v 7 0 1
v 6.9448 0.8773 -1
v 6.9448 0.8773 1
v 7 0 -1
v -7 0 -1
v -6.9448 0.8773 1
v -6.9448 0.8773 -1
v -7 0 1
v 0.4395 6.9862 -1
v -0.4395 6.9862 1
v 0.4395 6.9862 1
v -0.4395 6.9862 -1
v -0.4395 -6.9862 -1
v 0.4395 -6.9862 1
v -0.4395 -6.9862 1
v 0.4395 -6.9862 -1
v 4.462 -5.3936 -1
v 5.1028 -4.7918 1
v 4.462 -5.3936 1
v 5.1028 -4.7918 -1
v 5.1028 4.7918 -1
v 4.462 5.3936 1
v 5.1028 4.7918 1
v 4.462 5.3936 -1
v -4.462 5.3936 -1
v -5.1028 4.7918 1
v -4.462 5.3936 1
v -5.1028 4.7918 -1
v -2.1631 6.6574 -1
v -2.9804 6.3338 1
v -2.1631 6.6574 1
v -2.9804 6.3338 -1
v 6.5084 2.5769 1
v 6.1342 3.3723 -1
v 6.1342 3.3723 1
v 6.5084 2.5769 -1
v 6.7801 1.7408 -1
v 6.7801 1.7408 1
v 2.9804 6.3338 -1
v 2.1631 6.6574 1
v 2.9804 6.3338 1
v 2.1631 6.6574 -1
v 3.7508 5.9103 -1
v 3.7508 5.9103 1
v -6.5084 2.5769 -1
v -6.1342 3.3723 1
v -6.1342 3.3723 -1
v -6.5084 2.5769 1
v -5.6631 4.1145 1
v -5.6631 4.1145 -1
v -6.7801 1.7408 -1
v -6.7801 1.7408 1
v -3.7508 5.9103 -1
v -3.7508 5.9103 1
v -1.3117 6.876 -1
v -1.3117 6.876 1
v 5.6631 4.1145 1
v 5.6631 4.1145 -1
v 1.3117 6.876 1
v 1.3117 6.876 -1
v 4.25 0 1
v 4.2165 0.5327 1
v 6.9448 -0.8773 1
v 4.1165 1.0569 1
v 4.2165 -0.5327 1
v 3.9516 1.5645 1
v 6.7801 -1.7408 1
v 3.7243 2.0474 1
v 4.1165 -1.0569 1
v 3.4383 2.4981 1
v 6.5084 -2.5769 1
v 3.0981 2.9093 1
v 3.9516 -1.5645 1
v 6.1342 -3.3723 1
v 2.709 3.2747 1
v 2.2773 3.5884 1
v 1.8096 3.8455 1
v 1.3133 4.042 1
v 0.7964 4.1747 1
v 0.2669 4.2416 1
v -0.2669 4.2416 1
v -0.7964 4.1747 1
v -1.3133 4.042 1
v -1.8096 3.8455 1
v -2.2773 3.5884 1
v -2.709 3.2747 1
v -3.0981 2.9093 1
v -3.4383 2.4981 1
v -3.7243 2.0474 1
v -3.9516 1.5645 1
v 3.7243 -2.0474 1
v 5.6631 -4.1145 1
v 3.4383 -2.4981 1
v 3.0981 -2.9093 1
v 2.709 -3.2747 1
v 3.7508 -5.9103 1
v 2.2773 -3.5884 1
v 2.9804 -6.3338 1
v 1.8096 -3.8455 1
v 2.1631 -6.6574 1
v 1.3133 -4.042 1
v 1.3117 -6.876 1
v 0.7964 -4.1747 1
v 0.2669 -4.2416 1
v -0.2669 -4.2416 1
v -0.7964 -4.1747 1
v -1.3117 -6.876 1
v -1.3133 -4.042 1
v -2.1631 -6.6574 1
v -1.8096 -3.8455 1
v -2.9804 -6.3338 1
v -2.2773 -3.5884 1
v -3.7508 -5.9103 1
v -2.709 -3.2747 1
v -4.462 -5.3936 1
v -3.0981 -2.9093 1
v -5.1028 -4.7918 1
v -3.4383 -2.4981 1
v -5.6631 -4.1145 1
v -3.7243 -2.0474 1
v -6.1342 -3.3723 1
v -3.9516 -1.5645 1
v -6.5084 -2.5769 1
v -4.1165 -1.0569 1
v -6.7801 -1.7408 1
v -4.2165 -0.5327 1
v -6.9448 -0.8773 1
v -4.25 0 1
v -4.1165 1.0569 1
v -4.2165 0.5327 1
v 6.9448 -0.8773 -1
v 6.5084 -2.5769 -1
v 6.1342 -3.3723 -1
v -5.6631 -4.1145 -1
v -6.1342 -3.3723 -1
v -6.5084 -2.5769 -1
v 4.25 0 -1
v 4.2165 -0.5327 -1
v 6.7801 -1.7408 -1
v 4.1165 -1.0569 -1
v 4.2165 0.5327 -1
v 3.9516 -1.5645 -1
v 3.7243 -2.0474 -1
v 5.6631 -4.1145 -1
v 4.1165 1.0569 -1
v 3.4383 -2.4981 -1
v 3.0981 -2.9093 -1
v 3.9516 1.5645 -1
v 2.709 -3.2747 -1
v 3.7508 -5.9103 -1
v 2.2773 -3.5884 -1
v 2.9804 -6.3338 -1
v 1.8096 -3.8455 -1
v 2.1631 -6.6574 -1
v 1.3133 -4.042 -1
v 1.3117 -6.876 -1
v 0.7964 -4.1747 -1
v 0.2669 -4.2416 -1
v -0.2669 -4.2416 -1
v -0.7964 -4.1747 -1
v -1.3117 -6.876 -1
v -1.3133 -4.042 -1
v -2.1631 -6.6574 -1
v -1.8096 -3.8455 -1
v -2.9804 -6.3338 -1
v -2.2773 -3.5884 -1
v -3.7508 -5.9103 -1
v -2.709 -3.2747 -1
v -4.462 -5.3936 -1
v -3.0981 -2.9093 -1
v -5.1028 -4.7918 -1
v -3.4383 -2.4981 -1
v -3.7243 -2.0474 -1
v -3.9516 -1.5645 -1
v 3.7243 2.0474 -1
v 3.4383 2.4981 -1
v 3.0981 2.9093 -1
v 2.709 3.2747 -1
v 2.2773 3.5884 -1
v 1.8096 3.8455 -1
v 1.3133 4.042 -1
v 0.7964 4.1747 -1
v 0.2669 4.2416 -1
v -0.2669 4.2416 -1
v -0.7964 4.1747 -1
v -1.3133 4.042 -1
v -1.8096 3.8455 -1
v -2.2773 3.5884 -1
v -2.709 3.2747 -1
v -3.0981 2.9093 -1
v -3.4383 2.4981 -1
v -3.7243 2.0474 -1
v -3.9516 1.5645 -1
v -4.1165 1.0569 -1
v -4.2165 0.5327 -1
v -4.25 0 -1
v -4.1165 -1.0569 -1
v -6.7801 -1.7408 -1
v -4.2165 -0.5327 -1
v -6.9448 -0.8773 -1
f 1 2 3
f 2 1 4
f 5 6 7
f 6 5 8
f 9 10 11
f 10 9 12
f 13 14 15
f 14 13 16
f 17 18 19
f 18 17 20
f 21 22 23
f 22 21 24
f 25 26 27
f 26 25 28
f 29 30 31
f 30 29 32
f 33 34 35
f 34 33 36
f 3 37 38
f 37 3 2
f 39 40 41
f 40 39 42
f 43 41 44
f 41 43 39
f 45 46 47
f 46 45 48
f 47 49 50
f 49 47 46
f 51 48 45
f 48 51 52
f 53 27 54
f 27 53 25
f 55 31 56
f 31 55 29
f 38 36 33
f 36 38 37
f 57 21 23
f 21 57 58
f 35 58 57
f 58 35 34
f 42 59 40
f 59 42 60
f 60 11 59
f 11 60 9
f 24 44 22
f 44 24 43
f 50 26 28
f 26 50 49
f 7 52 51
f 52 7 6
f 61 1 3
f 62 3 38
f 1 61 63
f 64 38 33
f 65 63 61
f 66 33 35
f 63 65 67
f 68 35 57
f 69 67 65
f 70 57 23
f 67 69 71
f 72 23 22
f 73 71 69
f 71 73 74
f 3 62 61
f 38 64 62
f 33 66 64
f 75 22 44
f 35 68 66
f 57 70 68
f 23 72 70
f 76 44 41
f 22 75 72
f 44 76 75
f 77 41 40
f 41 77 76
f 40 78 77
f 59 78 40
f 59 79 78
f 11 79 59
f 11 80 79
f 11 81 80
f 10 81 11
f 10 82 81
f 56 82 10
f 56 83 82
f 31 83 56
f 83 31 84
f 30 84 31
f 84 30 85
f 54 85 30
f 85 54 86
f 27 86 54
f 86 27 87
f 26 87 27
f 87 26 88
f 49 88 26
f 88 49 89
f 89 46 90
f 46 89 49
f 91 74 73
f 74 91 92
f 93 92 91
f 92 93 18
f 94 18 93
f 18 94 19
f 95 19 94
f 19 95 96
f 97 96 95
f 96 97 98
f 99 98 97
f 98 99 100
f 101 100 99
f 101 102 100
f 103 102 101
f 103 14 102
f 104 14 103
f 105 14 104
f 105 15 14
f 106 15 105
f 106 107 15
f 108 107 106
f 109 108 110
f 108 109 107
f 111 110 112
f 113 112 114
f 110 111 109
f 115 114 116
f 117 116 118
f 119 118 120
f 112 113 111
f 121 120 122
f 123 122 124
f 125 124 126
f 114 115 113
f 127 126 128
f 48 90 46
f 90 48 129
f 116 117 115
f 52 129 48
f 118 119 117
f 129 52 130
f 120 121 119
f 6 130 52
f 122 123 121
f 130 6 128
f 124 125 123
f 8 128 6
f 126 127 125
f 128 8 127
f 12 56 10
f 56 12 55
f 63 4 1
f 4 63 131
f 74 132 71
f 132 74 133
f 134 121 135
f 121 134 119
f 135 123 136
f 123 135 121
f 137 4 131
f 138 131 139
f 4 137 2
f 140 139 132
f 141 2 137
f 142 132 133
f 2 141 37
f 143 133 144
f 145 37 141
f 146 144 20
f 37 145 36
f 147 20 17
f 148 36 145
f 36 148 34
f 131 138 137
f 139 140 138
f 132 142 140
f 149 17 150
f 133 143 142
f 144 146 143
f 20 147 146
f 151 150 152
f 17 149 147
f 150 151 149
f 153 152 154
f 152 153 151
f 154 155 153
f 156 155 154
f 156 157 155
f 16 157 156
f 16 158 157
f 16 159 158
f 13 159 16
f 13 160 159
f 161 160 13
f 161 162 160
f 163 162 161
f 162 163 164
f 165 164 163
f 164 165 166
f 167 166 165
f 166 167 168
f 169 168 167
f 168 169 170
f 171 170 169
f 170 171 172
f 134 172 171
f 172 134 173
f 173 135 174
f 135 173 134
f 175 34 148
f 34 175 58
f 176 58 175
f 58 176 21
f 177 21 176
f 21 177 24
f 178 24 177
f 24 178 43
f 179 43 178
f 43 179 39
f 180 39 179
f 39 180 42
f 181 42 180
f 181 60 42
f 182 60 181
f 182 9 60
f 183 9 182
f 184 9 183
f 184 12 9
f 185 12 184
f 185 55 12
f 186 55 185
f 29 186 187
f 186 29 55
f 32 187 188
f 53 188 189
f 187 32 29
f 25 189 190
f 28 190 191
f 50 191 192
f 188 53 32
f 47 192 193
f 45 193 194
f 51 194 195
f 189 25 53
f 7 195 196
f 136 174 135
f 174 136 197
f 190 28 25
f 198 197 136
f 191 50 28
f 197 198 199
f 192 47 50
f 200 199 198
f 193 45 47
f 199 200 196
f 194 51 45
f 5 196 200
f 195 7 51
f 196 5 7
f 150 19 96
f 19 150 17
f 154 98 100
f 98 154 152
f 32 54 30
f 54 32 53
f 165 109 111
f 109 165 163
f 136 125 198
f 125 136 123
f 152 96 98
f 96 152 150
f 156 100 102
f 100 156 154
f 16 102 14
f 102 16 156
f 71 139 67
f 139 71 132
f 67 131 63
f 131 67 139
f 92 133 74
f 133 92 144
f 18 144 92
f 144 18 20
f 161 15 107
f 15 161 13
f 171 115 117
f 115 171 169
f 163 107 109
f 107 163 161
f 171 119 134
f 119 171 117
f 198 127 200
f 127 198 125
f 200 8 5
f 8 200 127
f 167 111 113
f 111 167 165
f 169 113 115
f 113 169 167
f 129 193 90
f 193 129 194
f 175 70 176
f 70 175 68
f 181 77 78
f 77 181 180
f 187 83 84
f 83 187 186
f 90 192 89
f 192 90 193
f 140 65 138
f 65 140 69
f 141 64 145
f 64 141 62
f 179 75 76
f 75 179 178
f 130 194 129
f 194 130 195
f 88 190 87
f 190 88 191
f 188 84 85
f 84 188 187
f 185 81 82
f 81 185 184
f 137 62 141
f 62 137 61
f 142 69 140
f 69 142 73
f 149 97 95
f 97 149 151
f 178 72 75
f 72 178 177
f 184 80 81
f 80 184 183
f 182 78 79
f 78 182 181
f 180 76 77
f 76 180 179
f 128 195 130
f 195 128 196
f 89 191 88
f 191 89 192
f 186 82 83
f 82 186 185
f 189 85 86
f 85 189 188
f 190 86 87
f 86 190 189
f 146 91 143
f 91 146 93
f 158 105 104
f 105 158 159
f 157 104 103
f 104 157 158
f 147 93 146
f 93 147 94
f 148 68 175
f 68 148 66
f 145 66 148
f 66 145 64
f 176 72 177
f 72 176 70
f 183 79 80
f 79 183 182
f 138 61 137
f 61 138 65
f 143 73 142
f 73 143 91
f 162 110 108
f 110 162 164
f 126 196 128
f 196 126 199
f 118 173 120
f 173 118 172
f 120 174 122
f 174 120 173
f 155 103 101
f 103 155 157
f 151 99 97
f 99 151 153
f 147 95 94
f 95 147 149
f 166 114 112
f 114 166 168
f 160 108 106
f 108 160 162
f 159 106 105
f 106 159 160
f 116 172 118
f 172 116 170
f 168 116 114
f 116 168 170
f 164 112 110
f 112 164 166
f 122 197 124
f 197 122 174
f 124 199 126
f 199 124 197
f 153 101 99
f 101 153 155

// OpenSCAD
$fn = 50;


difference() {
	union() {
		translate(v = [0, 0, -1.0000000000]) {
			cylinder(h = 2, r = 7.0000000000);
		}
	}
	union() {
		translate(v = [0, 0, -100.0000000000]) {
			cylinder(h = 200, r = 4.2500000000);
		}
	}
}
